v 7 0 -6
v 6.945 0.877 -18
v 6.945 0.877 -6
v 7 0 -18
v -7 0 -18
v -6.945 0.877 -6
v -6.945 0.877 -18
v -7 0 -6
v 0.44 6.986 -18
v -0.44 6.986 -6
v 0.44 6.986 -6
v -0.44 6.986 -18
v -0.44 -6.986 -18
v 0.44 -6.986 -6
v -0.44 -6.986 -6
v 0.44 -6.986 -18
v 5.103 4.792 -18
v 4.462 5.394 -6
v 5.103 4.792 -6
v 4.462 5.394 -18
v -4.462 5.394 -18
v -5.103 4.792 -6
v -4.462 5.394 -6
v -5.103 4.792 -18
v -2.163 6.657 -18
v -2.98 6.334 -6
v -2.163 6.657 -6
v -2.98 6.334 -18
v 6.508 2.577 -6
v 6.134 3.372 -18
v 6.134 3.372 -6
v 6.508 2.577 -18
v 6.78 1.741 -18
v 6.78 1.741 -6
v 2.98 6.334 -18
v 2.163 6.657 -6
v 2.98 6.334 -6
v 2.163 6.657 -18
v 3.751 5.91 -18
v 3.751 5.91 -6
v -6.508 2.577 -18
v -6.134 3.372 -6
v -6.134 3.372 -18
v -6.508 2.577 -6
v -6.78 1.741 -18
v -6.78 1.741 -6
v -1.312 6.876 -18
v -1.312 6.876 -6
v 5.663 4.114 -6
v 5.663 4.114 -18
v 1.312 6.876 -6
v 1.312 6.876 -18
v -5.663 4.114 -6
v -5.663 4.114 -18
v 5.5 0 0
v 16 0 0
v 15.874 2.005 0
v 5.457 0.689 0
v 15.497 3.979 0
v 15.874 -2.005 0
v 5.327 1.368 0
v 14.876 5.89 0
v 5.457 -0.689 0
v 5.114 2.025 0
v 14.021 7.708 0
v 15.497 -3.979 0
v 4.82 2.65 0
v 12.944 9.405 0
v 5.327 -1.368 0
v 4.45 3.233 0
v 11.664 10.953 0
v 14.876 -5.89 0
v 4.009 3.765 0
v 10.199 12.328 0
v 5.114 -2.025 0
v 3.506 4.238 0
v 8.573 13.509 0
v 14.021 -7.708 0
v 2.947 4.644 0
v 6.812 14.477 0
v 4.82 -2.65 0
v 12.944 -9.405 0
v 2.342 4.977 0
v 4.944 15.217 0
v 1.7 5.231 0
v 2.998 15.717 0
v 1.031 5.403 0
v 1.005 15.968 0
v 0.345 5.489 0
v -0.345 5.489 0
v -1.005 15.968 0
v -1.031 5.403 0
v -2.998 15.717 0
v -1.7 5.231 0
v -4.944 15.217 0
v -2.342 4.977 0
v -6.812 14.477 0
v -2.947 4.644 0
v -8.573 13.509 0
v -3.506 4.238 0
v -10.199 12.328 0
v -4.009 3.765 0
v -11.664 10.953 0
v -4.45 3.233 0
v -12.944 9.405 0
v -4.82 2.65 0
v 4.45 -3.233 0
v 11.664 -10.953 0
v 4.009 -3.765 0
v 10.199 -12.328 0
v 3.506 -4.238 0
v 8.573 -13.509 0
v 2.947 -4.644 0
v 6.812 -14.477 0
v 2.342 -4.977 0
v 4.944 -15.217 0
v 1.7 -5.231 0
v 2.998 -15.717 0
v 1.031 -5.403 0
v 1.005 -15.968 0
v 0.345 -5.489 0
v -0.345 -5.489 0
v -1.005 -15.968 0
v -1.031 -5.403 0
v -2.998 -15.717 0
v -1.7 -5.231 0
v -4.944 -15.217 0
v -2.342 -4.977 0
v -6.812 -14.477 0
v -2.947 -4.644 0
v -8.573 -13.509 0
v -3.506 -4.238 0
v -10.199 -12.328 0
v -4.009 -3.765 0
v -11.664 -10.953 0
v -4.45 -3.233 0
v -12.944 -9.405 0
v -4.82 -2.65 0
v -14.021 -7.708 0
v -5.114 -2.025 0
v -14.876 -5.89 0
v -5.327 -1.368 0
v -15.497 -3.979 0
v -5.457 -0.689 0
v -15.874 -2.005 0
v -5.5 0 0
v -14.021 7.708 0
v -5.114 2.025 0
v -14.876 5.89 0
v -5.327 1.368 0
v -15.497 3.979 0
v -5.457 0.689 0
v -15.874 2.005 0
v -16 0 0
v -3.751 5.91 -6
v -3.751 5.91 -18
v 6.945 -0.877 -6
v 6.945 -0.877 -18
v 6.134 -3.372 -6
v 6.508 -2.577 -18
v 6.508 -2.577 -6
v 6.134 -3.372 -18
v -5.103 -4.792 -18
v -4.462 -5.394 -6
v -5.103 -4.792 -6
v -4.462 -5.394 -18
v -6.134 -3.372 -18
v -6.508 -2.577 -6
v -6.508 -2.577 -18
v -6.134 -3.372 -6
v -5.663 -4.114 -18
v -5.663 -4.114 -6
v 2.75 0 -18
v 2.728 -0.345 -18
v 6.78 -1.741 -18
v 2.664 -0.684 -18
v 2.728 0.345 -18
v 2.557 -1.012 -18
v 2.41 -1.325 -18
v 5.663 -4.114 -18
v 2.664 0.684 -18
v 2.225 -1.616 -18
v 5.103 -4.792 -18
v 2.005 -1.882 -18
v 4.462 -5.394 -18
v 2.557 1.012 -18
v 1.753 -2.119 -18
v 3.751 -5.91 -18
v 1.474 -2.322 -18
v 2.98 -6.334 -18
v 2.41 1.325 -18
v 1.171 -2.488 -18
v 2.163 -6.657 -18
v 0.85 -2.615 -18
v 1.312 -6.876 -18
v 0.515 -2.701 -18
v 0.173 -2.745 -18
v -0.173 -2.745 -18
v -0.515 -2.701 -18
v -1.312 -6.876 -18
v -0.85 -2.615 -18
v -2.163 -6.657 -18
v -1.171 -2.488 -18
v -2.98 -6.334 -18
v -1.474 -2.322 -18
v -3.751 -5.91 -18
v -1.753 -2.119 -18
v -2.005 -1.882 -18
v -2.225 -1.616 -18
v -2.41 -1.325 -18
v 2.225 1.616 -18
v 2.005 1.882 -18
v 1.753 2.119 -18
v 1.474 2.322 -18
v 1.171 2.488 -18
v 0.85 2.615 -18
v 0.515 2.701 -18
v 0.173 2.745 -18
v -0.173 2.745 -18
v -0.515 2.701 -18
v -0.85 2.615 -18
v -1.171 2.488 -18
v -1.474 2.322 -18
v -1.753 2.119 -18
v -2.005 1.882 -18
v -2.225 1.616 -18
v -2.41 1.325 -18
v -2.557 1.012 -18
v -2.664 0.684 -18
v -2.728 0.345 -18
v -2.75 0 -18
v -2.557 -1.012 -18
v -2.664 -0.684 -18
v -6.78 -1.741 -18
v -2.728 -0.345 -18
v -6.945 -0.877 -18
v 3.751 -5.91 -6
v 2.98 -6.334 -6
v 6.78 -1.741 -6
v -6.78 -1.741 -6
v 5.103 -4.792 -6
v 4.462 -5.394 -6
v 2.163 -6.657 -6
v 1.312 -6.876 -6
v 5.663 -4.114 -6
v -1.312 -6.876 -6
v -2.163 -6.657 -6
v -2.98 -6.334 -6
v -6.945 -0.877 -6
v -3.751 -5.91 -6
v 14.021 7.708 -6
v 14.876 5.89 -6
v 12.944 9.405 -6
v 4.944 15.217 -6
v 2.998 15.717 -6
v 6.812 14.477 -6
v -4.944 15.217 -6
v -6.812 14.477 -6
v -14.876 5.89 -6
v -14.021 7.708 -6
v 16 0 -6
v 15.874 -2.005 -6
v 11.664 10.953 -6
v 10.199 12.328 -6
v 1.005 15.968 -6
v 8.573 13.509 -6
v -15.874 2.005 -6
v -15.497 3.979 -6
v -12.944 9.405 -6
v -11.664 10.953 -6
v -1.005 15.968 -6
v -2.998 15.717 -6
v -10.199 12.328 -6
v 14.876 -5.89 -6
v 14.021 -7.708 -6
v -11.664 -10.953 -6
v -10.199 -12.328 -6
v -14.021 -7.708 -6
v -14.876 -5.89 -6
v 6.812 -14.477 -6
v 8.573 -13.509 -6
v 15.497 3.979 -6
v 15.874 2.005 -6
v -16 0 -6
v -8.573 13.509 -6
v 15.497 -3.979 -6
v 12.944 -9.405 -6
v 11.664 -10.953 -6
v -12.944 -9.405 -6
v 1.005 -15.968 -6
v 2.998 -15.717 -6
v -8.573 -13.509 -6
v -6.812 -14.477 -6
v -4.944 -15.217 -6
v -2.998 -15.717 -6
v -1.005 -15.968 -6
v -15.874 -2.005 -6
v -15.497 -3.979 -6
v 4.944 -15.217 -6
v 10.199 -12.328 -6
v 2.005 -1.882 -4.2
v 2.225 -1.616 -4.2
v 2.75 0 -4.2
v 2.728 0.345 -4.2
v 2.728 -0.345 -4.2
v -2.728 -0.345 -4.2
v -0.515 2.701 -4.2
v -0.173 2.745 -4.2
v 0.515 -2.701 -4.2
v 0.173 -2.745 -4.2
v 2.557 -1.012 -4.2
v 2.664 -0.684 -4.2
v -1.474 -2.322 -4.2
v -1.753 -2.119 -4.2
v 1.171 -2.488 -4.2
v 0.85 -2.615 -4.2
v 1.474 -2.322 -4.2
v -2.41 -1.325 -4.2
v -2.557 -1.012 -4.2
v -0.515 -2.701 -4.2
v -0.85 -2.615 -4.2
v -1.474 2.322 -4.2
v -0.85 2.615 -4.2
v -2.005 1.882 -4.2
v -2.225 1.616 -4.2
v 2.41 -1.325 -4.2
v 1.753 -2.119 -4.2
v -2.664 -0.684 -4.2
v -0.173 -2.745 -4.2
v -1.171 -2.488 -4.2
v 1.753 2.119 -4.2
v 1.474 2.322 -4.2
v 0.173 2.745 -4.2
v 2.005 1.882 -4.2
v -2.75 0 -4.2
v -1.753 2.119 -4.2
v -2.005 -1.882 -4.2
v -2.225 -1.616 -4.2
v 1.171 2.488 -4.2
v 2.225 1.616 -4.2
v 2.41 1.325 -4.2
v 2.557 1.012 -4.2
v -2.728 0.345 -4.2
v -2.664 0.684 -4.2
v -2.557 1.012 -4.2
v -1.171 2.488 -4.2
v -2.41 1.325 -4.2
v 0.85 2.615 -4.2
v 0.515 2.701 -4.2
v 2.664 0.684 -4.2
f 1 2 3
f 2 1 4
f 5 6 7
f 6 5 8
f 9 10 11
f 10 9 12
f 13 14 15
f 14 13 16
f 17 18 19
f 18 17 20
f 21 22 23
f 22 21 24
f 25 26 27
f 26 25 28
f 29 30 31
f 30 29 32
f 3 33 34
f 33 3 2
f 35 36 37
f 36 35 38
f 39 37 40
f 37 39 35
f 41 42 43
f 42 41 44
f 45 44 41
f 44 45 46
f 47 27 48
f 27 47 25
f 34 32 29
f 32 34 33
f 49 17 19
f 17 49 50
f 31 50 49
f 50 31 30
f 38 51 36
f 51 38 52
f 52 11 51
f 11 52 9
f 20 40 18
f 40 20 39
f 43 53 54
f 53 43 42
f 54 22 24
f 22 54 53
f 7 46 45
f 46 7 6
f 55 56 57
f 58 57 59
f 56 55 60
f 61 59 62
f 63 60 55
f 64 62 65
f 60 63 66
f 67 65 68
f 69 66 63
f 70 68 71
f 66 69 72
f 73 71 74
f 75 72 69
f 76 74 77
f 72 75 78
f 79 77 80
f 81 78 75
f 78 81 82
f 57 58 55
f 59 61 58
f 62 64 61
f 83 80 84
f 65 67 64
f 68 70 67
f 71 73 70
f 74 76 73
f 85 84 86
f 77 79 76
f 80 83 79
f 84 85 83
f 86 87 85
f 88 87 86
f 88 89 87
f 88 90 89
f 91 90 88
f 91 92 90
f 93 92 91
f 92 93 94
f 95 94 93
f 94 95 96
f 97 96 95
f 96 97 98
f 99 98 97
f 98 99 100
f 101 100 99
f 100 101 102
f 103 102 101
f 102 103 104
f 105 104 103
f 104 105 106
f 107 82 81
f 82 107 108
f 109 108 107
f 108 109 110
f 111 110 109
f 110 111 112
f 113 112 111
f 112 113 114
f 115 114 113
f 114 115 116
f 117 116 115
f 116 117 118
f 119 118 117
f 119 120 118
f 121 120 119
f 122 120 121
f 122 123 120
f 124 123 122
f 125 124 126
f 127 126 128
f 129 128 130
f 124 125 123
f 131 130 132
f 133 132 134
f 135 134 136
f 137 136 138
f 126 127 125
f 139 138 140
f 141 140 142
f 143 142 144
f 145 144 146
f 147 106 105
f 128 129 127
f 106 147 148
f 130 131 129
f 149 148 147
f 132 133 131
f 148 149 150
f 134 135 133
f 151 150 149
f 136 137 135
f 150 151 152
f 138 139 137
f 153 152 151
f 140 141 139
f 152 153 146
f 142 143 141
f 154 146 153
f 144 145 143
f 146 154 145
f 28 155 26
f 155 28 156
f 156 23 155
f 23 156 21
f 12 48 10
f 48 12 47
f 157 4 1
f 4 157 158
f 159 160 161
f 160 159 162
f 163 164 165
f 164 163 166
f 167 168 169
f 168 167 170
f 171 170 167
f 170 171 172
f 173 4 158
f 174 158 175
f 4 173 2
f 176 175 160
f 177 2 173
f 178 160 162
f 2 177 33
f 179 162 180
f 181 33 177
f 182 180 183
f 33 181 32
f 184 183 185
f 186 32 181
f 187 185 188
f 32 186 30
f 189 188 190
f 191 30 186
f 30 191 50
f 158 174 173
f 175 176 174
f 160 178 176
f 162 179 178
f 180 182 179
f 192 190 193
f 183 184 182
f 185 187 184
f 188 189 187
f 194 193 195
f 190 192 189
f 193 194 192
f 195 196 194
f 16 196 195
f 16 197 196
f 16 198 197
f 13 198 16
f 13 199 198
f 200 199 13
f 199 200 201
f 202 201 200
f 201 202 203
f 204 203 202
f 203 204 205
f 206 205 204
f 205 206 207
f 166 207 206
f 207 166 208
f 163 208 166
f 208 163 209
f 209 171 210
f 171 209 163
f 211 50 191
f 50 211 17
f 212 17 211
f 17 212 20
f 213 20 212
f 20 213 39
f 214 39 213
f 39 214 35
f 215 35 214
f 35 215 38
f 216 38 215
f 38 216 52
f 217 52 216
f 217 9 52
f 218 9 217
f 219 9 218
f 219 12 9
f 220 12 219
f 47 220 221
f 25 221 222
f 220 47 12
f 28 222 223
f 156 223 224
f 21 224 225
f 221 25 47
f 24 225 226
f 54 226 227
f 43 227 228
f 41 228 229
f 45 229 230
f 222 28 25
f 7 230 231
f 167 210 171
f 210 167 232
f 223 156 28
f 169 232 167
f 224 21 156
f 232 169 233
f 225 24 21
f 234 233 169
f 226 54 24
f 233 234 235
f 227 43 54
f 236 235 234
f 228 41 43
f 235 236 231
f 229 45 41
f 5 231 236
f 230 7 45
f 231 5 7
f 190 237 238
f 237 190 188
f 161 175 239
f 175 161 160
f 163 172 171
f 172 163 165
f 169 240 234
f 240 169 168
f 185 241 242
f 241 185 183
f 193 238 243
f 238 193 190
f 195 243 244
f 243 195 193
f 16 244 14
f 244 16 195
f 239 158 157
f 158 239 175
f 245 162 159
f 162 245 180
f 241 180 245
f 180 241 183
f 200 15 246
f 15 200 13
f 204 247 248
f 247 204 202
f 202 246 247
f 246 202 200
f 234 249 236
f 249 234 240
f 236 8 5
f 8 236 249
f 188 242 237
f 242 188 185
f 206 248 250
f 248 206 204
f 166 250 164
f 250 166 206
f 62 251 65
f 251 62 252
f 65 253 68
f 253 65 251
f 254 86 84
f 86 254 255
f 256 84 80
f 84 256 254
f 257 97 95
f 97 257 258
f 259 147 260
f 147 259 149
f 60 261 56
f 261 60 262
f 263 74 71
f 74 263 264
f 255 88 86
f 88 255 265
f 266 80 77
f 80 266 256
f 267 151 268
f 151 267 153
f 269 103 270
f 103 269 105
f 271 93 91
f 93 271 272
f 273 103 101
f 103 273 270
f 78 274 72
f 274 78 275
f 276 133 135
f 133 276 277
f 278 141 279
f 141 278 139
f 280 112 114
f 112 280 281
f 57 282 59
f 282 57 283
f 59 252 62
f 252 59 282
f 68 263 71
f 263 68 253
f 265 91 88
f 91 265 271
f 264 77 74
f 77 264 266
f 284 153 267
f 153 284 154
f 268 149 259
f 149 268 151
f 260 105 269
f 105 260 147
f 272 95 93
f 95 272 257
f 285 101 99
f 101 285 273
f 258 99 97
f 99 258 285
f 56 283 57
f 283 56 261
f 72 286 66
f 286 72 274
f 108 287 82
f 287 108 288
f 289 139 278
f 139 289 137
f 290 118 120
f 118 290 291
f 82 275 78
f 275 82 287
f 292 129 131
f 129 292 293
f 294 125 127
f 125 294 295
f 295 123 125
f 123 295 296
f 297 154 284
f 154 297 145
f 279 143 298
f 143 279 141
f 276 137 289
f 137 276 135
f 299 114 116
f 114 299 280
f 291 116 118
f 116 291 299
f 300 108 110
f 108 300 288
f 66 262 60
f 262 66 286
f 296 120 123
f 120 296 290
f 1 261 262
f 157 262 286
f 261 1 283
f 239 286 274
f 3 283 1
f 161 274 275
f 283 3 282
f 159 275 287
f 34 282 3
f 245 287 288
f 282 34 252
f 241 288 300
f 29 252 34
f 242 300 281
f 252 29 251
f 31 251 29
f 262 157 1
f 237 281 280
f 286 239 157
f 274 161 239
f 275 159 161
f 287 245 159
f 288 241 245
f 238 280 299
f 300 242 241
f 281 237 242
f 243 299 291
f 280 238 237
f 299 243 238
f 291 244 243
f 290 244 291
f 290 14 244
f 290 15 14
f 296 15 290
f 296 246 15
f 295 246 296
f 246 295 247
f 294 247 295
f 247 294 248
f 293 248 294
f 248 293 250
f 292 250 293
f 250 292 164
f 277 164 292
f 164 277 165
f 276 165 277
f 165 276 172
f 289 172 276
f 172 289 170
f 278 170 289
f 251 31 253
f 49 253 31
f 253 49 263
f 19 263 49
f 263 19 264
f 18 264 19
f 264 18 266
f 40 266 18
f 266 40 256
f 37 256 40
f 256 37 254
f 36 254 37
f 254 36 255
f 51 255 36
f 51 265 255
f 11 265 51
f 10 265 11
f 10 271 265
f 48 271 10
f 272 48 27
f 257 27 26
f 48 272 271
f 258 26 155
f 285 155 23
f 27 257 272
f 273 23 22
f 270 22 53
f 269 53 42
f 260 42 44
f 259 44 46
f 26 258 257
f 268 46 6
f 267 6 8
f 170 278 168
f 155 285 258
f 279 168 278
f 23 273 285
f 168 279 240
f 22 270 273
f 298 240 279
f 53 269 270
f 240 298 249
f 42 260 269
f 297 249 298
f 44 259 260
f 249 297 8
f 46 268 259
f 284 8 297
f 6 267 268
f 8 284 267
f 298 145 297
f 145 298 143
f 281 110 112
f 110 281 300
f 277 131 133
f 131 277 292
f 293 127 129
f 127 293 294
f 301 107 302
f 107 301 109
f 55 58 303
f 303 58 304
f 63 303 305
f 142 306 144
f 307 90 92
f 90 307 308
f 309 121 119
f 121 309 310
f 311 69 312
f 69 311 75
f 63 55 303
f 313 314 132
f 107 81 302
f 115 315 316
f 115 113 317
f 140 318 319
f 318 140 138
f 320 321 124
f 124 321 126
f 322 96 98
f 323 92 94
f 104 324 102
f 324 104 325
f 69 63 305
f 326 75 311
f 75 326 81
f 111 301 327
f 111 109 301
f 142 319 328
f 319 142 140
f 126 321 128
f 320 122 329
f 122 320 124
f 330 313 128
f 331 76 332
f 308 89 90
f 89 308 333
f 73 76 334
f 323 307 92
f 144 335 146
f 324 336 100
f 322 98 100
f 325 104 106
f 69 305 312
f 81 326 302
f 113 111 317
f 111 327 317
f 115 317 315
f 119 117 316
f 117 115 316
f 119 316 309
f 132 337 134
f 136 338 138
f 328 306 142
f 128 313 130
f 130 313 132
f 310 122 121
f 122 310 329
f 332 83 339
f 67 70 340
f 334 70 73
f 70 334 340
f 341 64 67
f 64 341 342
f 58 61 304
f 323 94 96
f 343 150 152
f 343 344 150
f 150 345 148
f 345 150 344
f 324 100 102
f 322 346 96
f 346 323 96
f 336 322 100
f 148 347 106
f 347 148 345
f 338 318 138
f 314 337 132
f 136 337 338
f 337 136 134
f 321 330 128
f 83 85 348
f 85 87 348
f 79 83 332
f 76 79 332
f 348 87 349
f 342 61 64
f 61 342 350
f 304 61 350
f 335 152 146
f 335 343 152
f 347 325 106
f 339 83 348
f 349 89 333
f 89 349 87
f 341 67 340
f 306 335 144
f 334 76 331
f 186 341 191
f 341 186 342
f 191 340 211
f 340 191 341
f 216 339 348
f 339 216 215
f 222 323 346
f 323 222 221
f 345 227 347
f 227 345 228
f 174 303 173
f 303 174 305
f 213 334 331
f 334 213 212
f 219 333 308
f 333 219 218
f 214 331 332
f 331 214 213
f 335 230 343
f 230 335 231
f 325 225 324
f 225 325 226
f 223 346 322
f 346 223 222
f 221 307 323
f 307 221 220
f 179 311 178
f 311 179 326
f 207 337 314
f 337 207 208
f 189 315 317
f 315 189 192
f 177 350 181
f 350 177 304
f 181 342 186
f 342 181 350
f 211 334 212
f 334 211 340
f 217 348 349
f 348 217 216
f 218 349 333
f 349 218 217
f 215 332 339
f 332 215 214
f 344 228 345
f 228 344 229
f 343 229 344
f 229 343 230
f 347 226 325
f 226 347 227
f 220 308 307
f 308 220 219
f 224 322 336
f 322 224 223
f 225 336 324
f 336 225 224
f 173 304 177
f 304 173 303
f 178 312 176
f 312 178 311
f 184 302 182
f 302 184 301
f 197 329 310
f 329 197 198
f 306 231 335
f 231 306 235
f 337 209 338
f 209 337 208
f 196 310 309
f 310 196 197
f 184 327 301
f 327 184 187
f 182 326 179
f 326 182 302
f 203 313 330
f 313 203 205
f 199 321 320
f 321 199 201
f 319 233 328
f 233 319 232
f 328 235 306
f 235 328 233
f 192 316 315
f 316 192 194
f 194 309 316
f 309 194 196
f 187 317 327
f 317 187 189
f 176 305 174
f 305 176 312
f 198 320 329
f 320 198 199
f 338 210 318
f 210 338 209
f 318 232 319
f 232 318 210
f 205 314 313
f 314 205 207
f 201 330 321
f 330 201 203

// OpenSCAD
$fn = 50;


difference() {
	union() {
		translate(v = [0, 0, -18.0000000000]) {
			cylinder(h = 18, r = 7.0000000000);
		}
		translate(v = [0, 0, -6.0000000000]) {
			cylinder(h = 6, r = 16.0000000000);
		}
	}
	union() {
		translate(v = [0, 0, 0]) {
			rotate(a = [0, 0, 0]) {
				difference() {
					union() {
						#translate(v = [0, 0, -18.0000000000]) {
							cylinder(h = 18, r = 2.2500000000);
						}
						#translate(v = [0, 0, -4.2000000000]) {
							cylinder(h = 4.2000000000, r = 7.0000000000, r1 = 2.7500000000, r2 = 5.5000000000);
						}
						#translate(v = [0, 0, -18.0000000000]) {
							cylinder(h = 18, r = 2.7500000000);
						}
						#translate(v = [0, 0, -18.0000000000]) {
							cylinder(h = 18, r = 2.2500000000);
						}
					}
					union();
				}
			}
		}
	}
}
